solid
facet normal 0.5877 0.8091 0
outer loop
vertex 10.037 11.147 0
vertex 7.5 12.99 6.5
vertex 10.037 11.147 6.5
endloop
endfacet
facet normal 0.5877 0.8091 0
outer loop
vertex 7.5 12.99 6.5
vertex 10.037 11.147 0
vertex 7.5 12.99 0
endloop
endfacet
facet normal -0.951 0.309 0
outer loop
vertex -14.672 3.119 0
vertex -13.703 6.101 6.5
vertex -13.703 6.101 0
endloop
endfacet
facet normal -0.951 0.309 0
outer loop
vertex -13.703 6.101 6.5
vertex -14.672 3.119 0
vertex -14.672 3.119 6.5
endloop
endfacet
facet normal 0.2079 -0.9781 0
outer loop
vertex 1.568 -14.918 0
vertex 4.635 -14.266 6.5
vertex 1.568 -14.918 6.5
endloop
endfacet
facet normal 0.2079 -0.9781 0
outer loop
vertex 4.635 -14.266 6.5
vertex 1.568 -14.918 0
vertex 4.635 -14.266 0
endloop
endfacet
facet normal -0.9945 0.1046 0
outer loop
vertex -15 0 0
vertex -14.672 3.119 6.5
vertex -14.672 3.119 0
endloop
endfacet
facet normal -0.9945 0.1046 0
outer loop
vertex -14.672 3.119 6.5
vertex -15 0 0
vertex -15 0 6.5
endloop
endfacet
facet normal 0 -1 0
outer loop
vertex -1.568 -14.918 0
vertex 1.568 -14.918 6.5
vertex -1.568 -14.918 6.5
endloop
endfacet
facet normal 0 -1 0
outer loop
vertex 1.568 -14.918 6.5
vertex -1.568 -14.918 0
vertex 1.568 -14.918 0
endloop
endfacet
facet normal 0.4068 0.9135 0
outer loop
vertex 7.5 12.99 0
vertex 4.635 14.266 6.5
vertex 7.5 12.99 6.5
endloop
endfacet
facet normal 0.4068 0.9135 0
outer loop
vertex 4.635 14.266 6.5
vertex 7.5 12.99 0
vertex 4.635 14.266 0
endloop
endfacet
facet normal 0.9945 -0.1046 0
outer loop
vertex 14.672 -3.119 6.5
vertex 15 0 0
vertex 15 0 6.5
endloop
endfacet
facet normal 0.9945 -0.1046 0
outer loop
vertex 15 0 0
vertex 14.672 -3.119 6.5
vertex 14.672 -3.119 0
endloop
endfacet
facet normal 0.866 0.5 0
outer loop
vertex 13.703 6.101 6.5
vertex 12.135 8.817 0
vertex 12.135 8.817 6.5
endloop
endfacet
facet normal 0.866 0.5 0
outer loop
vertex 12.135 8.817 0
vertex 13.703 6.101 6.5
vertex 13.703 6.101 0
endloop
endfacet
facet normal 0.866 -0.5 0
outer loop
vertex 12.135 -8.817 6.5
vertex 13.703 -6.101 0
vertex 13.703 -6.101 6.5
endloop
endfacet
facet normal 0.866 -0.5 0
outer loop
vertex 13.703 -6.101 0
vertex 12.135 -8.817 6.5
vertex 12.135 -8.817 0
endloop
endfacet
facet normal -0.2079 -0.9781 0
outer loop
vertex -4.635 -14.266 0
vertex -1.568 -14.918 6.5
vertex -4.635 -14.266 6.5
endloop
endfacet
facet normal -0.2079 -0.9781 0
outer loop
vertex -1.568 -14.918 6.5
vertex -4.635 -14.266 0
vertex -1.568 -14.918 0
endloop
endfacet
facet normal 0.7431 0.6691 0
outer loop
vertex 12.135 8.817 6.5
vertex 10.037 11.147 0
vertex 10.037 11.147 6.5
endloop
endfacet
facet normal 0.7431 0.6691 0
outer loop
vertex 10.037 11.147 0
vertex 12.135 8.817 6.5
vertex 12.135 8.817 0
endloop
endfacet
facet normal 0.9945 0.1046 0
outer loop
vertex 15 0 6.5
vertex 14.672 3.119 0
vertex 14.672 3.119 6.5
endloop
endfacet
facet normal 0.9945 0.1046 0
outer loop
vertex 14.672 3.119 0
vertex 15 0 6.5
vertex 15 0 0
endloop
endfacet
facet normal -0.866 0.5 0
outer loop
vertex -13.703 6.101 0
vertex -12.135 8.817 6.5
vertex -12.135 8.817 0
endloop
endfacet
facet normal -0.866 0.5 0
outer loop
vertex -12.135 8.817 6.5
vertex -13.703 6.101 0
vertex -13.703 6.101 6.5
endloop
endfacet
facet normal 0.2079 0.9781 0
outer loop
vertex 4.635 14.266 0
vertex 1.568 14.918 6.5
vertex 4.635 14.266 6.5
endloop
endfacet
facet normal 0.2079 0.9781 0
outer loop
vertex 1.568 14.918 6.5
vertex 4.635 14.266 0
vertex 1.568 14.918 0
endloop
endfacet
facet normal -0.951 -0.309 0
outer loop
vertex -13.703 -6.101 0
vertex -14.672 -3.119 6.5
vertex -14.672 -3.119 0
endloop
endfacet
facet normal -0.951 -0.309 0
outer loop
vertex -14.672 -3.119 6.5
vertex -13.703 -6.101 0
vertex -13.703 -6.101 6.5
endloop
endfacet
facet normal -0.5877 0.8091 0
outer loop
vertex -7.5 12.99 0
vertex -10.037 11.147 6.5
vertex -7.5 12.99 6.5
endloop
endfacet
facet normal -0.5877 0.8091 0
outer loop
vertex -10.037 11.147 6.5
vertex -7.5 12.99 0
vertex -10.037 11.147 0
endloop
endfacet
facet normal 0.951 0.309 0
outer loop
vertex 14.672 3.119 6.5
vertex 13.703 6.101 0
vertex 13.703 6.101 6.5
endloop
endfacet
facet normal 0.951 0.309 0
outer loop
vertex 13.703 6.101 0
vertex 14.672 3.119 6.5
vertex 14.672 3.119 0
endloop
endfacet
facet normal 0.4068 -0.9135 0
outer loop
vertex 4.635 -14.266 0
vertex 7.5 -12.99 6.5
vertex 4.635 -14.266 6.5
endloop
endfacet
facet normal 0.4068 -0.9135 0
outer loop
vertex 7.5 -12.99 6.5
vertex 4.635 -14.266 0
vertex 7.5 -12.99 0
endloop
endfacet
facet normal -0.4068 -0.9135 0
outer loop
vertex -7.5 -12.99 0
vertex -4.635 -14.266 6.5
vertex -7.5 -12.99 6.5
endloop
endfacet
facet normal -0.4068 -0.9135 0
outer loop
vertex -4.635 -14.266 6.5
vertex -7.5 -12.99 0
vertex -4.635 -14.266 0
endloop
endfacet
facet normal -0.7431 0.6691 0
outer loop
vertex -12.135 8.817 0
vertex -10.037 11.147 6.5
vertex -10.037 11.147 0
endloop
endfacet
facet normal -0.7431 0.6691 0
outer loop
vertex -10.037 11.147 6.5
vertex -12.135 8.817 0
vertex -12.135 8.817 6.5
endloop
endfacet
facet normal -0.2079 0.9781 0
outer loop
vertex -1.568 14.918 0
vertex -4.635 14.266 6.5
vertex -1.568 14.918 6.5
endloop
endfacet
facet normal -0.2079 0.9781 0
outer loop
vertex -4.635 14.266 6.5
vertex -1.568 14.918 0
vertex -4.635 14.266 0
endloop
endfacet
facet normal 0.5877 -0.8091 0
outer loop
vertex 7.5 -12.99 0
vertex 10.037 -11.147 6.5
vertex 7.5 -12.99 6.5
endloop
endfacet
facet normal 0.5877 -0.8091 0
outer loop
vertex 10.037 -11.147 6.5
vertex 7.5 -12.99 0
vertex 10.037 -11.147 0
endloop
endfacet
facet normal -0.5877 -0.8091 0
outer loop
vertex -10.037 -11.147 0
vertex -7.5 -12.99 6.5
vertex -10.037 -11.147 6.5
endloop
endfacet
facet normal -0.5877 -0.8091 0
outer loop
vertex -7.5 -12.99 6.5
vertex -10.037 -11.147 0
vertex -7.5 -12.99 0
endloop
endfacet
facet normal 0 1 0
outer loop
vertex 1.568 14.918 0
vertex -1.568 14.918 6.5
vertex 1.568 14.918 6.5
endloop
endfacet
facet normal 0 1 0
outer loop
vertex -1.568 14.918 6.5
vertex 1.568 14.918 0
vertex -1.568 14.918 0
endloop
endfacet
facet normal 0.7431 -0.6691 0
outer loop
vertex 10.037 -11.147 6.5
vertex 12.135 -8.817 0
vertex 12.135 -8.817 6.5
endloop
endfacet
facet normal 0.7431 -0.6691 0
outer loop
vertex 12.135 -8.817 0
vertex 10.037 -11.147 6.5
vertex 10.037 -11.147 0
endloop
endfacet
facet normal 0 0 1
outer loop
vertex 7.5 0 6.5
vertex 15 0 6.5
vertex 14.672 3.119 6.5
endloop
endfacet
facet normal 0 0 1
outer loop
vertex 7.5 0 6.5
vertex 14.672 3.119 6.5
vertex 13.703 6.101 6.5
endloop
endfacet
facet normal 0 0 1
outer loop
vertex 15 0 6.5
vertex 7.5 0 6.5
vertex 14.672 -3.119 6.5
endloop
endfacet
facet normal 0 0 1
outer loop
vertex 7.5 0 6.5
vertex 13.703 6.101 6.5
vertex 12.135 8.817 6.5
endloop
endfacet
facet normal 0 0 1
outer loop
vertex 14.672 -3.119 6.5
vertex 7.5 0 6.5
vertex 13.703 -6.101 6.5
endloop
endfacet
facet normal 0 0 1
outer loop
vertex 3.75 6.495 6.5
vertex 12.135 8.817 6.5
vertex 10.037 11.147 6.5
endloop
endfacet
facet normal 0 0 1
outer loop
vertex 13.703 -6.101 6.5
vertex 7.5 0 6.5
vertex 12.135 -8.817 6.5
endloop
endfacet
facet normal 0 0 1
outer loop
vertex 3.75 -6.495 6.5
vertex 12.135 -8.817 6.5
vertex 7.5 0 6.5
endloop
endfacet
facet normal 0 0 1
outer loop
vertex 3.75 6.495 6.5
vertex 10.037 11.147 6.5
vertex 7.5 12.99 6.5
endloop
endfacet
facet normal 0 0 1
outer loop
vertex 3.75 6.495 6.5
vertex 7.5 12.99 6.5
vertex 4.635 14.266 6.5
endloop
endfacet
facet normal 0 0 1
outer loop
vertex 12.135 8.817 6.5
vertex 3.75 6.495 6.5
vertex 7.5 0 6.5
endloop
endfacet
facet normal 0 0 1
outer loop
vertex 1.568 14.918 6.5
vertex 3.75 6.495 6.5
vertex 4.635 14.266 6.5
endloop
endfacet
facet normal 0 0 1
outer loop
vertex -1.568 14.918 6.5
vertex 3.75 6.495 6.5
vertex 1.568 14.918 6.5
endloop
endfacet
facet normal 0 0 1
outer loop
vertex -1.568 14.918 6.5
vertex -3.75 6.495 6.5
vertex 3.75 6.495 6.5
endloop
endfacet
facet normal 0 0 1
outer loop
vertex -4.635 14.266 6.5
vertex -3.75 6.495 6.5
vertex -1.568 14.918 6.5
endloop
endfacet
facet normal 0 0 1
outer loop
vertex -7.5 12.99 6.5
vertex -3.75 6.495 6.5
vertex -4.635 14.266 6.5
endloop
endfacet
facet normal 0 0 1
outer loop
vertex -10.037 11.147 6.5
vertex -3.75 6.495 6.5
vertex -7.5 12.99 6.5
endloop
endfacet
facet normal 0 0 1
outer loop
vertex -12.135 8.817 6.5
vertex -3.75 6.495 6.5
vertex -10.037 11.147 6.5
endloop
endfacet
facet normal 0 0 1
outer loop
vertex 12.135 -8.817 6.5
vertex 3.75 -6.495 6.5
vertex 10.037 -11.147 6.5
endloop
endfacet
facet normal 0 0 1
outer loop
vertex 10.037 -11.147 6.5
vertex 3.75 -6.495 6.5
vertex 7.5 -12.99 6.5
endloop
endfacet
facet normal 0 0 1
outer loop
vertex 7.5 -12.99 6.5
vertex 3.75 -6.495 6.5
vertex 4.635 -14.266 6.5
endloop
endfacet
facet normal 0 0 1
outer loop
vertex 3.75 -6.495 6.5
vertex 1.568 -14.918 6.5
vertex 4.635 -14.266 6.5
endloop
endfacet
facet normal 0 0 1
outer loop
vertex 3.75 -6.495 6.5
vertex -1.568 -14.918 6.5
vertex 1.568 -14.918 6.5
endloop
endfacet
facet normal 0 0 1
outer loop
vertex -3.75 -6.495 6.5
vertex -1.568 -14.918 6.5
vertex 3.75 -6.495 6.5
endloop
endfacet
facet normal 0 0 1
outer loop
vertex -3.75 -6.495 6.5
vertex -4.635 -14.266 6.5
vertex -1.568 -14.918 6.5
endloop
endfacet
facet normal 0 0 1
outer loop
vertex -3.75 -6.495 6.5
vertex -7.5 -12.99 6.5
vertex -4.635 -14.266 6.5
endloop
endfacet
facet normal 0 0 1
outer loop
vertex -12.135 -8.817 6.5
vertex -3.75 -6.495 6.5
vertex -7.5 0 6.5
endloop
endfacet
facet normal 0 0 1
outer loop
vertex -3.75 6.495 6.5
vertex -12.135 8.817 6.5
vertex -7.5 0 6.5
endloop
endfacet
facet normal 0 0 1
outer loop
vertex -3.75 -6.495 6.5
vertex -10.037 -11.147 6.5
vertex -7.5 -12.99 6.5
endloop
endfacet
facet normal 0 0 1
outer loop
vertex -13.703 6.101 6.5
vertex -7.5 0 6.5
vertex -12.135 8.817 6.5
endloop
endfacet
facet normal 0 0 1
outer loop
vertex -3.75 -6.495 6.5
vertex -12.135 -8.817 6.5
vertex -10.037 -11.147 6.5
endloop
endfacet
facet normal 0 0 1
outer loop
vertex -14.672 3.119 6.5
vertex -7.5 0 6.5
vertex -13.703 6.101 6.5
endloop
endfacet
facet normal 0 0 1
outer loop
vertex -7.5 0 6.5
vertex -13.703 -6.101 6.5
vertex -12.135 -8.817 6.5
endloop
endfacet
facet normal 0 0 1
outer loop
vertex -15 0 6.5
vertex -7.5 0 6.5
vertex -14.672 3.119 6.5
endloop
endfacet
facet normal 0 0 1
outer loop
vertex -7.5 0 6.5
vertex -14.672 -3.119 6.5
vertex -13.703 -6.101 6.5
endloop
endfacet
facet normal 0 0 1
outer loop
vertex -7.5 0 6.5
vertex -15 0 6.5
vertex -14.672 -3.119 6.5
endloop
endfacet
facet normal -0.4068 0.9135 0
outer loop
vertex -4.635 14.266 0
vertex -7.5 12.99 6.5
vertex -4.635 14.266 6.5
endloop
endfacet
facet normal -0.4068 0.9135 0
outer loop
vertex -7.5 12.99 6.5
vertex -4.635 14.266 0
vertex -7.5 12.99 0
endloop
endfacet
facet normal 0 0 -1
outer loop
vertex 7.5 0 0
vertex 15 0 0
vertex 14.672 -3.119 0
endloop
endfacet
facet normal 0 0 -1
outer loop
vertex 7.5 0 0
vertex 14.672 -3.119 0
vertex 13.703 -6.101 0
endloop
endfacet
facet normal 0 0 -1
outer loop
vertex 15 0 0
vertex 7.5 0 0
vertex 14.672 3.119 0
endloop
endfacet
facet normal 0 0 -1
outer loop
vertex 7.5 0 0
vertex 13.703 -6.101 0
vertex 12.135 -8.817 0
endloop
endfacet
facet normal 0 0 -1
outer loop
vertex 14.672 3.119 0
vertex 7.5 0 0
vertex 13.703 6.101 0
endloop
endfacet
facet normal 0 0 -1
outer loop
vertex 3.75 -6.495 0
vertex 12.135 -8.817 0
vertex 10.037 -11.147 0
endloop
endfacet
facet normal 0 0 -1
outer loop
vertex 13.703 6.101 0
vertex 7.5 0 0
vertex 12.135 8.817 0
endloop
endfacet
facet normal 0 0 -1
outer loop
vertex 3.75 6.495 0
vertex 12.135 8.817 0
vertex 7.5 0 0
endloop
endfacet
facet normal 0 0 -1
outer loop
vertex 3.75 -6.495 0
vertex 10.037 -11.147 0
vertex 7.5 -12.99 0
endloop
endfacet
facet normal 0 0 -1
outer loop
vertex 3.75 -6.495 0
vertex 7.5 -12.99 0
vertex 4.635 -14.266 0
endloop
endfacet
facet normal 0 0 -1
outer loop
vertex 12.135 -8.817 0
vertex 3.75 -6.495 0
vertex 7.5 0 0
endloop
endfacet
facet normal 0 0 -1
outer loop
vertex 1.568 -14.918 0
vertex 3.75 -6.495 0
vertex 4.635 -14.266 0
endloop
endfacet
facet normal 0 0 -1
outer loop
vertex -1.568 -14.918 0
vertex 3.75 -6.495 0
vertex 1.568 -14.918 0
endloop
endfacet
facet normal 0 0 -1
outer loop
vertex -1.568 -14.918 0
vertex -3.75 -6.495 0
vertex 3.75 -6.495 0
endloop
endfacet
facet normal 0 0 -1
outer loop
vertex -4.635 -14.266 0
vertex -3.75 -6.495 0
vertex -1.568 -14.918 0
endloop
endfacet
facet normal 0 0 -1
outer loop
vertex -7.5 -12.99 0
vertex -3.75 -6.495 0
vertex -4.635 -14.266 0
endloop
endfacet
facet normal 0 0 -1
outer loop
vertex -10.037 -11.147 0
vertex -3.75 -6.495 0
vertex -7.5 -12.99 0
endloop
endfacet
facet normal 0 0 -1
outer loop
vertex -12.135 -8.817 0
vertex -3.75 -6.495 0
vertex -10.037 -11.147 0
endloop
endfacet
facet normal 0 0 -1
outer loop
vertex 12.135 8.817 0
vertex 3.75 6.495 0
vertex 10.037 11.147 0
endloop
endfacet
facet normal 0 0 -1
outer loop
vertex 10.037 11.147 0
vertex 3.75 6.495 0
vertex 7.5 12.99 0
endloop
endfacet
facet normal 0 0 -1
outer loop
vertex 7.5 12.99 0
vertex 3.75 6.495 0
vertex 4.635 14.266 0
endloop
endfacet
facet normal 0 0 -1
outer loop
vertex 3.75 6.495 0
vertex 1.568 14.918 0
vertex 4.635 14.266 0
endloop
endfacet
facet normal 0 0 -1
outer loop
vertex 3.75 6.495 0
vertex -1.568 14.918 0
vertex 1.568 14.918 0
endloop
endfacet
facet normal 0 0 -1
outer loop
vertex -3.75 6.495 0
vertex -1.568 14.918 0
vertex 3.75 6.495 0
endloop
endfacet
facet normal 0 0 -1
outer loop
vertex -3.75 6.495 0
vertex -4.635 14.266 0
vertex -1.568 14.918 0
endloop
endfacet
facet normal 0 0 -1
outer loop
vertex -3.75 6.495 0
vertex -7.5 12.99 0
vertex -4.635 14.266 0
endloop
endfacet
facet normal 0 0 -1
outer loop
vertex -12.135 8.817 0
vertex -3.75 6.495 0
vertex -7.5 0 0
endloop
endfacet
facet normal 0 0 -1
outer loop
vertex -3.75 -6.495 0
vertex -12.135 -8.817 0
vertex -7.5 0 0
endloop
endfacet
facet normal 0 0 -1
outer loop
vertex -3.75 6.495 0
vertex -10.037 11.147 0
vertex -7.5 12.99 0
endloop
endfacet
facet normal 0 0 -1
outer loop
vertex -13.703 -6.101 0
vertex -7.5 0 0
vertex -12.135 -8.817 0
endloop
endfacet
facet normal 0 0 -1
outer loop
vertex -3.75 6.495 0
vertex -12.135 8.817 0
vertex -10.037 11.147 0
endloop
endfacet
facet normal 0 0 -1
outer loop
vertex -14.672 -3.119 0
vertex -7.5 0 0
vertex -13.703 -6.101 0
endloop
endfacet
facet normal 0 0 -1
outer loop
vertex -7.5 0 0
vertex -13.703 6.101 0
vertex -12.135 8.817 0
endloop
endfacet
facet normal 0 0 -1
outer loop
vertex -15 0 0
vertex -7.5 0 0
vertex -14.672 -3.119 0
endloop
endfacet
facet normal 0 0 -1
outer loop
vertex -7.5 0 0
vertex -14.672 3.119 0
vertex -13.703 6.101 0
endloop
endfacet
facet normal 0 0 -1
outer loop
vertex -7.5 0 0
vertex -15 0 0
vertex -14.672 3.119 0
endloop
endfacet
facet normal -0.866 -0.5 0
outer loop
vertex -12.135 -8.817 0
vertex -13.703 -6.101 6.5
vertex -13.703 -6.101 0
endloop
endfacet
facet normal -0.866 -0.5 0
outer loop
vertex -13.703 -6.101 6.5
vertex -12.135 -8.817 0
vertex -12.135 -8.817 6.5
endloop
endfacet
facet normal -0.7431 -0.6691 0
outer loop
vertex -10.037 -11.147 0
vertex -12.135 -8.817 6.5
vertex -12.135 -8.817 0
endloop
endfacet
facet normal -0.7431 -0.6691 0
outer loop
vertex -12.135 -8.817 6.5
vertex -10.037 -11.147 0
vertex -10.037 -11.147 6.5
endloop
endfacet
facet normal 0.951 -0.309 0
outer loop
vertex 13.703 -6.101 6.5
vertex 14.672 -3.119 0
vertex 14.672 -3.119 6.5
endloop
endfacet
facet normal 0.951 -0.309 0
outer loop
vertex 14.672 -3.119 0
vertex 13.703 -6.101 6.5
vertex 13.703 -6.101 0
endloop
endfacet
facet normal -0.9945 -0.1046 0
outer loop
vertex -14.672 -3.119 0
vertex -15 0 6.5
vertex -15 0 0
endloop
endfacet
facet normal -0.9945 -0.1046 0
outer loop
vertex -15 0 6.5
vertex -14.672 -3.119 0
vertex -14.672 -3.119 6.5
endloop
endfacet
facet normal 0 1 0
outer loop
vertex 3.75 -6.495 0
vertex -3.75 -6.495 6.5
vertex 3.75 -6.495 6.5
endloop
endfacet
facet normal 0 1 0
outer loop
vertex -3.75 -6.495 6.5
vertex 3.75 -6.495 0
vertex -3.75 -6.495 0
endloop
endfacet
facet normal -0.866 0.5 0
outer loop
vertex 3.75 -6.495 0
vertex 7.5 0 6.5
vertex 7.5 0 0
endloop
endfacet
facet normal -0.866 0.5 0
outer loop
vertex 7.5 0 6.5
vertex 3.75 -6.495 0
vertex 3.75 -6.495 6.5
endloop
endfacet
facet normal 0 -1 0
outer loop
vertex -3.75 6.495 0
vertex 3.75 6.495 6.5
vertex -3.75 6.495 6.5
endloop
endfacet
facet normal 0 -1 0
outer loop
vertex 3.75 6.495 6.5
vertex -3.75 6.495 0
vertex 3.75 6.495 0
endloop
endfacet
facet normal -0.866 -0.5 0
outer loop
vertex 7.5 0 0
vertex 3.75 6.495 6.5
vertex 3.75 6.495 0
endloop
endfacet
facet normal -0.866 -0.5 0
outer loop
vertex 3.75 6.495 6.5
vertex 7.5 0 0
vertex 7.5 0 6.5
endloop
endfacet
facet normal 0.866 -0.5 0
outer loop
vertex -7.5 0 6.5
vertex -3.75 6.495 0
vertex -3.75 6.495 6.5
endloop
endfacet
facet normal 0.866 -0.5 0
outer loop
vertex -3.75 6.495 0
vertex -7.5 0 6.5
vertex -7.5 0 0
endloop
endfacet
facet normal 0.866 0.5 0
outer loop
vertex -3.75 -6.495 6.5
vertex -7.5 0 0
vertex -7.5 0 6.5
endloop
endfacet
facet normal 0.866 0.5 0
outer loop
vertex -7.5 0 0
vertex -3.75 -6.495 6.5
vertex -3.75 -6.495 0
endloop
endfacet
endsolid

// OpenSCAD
include <MCAD/nuts_and_bolts.scad>

difference()
{
    cylinder(h=METRIC_NUT_THICKNESS[8],r=METRIC_NUT_AC_WIDTHS[8]);
    #nutHole(8,MM);
}
